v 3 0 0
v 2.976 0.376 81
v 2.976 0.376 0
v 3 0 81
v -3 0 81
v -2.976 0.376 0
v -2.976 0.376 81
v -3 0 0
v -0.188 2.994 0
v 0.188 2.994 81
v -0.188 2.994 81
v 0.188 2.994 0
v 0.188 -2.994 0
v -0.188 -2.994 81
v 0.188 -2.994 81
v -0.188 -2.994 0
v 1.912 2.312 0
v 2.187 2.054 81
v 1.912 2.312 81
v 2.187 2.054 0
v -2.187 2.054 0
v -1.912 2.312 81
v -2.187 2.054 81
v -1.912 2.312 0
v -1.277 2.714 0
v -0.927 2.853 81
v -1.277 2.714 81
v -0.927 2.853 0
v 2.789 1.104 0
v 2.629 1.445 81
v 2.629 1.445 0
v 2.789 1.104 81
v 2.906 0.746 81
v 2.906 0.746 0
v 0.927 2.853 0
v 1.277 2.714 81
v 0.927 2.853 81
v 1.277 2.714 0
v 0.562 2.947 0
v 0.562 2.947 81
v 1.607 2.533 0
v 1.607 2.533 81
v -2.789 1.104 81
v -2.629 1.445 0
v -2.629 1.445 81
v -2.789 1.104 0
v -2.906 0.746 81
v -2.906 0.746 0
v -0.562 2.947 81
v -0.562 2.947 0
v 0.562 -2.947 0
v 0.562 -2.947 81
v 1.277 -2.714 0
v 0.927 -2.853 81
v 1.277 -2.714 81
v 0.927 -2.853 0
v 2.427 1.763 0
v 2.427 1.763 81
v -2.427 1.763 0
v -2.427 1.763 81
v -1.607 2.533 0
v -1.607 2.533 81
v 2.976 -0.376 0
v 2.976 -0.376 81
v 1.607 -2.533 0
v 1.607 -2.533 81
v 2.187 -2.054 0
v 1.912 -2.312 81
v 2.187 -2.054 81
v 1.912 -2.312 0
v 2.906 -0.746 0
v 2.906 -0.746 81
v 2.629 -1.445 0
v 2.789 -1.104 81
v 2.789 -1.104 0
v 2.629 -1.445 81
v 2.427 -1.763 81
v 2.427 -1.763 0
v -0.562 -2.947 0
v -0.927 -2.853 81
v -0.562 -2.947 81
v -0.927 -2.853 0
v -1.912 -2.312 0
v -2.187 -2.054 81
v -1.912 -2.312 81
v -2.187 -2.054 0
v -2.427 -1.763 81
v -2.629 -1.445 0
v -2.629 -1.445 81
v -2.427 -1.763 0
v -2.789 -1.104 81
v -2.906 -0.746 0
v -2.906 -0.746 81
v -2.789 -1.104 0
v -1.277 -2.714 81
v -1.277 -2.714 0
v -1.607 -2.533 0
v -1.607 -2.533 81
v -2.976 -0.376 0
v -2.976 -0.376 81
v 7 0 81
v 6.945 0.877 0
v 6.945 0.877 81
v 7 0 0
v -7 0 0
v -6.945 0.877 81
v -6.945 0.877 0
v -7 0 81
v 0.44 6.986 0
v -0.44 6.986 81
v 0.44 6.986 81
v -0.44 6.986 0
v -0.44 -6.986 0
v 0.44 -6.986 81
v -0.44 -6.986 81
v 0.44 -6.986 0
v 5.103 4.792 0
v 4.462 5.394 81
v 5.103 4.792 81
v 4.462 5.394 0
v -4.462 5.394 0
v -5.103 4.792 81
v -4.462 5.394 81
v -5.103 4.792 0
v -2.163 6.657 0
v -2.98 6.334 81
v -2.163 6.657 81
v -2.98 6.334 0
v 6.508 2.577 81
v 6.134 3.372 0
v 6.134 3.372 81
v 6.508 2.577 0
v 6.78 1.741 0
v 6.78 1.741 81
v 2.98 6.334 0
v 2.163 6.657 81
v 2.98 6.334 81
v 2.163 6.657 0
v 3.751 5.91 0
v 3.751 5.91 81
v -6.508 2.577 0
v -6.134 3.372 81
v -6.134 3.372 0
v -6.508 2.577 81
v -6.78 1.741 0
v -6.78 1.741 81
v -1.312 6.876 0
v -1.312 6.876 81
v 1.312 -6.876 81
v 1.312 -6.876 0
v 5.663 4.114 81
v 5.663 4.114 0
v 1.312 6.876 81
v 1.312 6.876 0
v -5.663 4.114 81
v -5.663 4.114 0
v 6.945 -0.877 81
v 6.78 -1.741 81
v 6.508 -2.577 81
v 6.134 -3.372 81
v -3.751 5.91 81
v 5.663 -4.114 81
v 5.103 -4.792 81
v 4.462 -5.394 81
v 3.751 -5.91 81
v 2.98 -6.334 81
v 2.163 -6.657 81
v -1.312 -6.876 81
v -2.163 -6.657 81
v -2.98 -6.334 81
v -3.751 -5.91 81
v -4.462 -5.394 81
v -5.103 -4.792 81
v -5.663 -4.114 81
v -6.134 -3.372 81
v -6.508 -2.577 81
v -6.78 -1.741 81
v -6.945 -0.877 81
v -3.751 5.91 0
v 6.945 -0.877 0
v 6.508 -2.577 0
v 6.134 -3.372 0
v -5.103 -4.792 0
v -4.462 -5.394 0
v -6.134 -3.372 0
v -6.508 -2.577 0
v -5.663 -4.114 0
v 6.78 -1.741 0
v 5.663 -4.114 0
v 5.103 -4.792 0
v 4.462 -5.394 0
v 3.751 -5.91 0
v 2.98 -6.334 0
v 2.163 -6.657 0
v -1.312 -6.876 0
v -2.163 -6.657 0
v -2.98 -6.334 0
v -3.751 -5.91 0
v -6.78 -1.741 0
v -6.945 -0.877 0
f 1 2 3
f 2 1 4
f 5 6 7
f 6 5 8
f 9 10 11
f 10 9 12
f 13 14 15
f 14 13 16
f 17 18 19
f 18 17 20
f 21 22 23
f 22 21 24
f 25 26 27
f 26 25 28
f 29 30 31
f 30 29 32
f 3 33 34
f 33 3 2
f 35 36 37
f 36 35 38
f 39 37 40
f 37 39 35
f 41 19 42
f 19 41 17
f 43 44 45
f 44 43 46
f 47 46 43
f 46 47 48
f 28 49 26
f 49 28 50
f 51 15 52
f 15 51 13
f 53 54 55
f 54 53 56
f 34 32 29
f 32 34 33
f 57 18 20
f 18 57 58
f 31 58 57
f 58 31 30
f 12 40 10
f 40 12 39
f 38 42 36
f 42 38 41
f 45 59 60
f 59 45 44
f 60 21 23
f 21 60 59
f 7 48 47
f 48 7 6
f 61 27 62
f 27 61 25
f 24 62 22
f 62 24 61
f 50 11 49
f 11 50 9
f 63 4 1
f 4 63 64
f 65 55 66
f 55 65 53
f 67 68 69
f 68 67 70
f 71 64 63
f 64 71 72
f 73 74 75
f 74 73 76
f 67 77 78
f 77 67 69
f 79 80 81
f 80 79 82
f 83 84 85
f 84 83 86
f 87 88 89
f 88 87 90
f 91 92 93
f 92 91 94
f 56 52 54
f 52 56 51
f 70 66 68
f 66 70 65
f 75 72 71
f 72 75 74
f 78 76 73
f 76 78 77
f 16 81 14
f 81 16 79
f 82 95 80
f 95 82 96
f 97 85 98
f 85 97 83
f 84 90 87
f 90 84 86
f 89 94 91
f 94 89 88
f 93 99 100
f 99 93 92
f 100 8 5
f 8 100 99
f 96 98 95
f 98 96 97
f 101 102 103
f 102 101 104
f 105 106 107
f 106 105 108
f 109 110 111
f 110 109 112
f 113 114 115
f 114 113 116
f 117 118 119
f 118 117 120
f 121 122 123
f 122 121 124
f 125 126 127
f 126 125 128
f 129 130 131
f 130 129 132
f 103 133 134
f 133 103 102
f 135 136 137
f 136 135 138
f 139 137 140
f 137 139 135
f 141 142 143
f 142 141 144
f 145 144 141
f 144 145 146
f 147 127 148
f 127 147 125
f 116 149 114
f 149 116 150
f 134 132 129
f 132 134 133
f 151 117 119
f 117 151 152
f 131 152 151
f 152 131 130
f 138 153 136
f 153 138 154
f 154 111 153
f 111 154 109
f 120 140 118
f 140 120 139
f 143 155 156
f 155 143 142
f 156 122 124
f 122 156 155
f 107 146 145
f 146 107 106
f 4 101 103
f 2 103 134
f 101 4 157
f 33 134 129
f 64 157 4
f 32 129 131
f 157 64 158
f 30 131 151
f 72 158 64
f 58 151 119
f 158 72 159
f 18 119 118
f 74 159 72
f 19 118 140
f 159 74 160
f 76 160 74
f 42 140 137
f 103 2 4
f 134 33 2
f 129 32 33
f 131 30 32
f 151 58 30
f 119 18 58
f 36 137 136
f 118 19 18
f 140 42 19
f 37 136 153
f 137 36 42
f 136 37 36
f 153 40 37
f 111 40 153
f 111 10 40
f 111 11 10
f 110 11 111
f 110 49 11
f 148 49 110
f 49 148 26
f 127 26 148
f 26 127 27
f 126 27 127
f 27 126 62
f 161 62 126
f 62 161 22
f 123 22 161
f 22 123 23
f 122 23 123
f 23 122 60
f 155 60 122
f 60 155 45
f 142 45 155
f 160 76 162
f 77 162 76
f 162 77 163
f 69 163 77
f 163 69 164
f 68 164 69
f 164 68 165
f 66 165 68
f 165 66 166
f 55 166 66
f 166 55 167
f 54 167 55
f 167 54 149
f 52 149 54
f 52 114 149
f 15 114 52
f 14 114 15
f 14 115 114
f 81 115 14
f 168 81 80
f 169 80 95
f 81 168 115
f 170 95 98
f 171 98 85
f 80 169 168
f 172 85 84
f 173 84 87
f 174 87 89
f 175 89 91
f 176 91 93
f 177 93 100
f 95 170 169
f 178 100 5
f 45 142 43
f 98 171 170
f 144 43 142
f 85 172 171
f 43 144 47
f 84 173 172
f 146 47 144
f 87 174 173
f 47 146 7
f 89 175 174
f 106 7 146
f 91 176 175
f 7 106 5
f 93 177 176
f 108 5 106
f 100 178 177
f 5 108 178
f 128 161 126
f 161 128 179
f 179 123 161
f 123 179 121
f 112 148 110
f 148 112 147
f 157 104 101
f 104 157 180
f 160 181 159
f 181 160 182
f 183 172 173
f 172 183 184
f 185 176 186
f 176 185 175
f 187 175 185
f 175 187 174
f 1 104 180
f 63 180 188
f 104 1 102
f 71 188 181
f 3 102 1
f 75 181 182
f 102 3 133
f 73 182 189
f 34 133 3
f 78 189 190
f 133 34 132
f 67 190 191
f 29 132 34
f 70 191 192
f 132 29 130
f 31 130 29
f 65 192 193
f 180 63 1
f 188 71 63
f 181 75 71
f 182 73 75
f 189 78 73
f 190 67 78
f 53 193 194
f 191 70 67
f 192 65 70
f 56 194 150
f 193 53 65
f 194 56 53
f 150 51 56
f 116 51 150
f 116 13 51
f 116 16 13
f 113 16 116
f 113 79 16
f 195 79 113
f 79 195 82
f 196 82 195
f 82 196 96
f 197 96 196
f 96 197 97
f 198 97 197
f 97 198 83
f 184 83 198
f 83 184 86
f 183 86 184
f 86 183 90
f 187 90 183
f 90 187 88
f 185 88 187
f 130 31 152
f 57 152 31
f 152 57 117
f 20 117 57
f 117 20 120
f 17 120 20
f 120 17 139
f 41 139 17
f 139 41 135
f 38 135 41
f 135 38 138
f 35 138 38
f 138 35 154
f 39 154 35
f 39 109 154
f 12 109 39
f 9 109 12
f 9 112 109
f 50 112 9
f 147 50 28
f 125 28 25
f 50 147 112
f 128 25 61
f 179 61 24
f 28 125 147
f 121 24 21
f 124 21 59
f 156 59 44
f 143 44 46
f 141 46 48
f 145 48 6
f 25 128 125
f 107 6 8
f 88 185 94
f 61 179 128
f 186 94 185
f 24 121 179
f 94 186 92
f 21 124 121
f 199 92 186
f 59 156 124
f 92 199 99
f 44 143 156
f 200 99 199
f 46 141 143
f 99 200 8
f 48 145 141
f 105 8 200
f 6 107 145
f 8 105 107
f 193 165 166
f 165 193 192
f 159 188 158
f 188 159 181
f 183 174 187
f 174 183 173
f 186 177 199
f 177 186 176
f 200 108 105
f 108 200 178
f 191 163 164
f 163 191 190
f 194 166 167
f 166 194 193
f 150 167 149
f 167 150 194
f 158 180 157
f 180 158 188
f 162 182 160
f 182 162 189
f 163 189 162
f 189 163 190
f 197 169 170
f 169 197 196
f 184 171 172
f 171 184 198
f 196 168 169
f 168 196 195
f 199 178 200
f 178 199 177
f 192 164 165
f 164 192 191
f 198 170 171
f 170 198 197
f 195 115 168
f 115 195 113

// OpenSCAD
$fn = 50;


difference() {
	union() {
		cylinder(h = 81, r = 7.0000000000);
	}
	union() {
		translate(v = [0.0000000000, 0.0000000000, -100.0000000000]) {
			cylinder(h = 200, r = 3.0000000000);
		}
		translate(v = [0.0000000000, 0.0000000000, -100.0000000000]) {
			cylinder(h = 200, r = 3.0000000000);
		}
		translate(v = [0.0000000000, 0.0000000000, -100.0000000000]) {
			cylinder(h = 200, r = 3.0000000000);
		}
		translate(v = [0.0000000000, 0.0000000000, -100.0000000000]) {
			cylinder(h = 200, r = 3.0000000000);
		}
	}
}
